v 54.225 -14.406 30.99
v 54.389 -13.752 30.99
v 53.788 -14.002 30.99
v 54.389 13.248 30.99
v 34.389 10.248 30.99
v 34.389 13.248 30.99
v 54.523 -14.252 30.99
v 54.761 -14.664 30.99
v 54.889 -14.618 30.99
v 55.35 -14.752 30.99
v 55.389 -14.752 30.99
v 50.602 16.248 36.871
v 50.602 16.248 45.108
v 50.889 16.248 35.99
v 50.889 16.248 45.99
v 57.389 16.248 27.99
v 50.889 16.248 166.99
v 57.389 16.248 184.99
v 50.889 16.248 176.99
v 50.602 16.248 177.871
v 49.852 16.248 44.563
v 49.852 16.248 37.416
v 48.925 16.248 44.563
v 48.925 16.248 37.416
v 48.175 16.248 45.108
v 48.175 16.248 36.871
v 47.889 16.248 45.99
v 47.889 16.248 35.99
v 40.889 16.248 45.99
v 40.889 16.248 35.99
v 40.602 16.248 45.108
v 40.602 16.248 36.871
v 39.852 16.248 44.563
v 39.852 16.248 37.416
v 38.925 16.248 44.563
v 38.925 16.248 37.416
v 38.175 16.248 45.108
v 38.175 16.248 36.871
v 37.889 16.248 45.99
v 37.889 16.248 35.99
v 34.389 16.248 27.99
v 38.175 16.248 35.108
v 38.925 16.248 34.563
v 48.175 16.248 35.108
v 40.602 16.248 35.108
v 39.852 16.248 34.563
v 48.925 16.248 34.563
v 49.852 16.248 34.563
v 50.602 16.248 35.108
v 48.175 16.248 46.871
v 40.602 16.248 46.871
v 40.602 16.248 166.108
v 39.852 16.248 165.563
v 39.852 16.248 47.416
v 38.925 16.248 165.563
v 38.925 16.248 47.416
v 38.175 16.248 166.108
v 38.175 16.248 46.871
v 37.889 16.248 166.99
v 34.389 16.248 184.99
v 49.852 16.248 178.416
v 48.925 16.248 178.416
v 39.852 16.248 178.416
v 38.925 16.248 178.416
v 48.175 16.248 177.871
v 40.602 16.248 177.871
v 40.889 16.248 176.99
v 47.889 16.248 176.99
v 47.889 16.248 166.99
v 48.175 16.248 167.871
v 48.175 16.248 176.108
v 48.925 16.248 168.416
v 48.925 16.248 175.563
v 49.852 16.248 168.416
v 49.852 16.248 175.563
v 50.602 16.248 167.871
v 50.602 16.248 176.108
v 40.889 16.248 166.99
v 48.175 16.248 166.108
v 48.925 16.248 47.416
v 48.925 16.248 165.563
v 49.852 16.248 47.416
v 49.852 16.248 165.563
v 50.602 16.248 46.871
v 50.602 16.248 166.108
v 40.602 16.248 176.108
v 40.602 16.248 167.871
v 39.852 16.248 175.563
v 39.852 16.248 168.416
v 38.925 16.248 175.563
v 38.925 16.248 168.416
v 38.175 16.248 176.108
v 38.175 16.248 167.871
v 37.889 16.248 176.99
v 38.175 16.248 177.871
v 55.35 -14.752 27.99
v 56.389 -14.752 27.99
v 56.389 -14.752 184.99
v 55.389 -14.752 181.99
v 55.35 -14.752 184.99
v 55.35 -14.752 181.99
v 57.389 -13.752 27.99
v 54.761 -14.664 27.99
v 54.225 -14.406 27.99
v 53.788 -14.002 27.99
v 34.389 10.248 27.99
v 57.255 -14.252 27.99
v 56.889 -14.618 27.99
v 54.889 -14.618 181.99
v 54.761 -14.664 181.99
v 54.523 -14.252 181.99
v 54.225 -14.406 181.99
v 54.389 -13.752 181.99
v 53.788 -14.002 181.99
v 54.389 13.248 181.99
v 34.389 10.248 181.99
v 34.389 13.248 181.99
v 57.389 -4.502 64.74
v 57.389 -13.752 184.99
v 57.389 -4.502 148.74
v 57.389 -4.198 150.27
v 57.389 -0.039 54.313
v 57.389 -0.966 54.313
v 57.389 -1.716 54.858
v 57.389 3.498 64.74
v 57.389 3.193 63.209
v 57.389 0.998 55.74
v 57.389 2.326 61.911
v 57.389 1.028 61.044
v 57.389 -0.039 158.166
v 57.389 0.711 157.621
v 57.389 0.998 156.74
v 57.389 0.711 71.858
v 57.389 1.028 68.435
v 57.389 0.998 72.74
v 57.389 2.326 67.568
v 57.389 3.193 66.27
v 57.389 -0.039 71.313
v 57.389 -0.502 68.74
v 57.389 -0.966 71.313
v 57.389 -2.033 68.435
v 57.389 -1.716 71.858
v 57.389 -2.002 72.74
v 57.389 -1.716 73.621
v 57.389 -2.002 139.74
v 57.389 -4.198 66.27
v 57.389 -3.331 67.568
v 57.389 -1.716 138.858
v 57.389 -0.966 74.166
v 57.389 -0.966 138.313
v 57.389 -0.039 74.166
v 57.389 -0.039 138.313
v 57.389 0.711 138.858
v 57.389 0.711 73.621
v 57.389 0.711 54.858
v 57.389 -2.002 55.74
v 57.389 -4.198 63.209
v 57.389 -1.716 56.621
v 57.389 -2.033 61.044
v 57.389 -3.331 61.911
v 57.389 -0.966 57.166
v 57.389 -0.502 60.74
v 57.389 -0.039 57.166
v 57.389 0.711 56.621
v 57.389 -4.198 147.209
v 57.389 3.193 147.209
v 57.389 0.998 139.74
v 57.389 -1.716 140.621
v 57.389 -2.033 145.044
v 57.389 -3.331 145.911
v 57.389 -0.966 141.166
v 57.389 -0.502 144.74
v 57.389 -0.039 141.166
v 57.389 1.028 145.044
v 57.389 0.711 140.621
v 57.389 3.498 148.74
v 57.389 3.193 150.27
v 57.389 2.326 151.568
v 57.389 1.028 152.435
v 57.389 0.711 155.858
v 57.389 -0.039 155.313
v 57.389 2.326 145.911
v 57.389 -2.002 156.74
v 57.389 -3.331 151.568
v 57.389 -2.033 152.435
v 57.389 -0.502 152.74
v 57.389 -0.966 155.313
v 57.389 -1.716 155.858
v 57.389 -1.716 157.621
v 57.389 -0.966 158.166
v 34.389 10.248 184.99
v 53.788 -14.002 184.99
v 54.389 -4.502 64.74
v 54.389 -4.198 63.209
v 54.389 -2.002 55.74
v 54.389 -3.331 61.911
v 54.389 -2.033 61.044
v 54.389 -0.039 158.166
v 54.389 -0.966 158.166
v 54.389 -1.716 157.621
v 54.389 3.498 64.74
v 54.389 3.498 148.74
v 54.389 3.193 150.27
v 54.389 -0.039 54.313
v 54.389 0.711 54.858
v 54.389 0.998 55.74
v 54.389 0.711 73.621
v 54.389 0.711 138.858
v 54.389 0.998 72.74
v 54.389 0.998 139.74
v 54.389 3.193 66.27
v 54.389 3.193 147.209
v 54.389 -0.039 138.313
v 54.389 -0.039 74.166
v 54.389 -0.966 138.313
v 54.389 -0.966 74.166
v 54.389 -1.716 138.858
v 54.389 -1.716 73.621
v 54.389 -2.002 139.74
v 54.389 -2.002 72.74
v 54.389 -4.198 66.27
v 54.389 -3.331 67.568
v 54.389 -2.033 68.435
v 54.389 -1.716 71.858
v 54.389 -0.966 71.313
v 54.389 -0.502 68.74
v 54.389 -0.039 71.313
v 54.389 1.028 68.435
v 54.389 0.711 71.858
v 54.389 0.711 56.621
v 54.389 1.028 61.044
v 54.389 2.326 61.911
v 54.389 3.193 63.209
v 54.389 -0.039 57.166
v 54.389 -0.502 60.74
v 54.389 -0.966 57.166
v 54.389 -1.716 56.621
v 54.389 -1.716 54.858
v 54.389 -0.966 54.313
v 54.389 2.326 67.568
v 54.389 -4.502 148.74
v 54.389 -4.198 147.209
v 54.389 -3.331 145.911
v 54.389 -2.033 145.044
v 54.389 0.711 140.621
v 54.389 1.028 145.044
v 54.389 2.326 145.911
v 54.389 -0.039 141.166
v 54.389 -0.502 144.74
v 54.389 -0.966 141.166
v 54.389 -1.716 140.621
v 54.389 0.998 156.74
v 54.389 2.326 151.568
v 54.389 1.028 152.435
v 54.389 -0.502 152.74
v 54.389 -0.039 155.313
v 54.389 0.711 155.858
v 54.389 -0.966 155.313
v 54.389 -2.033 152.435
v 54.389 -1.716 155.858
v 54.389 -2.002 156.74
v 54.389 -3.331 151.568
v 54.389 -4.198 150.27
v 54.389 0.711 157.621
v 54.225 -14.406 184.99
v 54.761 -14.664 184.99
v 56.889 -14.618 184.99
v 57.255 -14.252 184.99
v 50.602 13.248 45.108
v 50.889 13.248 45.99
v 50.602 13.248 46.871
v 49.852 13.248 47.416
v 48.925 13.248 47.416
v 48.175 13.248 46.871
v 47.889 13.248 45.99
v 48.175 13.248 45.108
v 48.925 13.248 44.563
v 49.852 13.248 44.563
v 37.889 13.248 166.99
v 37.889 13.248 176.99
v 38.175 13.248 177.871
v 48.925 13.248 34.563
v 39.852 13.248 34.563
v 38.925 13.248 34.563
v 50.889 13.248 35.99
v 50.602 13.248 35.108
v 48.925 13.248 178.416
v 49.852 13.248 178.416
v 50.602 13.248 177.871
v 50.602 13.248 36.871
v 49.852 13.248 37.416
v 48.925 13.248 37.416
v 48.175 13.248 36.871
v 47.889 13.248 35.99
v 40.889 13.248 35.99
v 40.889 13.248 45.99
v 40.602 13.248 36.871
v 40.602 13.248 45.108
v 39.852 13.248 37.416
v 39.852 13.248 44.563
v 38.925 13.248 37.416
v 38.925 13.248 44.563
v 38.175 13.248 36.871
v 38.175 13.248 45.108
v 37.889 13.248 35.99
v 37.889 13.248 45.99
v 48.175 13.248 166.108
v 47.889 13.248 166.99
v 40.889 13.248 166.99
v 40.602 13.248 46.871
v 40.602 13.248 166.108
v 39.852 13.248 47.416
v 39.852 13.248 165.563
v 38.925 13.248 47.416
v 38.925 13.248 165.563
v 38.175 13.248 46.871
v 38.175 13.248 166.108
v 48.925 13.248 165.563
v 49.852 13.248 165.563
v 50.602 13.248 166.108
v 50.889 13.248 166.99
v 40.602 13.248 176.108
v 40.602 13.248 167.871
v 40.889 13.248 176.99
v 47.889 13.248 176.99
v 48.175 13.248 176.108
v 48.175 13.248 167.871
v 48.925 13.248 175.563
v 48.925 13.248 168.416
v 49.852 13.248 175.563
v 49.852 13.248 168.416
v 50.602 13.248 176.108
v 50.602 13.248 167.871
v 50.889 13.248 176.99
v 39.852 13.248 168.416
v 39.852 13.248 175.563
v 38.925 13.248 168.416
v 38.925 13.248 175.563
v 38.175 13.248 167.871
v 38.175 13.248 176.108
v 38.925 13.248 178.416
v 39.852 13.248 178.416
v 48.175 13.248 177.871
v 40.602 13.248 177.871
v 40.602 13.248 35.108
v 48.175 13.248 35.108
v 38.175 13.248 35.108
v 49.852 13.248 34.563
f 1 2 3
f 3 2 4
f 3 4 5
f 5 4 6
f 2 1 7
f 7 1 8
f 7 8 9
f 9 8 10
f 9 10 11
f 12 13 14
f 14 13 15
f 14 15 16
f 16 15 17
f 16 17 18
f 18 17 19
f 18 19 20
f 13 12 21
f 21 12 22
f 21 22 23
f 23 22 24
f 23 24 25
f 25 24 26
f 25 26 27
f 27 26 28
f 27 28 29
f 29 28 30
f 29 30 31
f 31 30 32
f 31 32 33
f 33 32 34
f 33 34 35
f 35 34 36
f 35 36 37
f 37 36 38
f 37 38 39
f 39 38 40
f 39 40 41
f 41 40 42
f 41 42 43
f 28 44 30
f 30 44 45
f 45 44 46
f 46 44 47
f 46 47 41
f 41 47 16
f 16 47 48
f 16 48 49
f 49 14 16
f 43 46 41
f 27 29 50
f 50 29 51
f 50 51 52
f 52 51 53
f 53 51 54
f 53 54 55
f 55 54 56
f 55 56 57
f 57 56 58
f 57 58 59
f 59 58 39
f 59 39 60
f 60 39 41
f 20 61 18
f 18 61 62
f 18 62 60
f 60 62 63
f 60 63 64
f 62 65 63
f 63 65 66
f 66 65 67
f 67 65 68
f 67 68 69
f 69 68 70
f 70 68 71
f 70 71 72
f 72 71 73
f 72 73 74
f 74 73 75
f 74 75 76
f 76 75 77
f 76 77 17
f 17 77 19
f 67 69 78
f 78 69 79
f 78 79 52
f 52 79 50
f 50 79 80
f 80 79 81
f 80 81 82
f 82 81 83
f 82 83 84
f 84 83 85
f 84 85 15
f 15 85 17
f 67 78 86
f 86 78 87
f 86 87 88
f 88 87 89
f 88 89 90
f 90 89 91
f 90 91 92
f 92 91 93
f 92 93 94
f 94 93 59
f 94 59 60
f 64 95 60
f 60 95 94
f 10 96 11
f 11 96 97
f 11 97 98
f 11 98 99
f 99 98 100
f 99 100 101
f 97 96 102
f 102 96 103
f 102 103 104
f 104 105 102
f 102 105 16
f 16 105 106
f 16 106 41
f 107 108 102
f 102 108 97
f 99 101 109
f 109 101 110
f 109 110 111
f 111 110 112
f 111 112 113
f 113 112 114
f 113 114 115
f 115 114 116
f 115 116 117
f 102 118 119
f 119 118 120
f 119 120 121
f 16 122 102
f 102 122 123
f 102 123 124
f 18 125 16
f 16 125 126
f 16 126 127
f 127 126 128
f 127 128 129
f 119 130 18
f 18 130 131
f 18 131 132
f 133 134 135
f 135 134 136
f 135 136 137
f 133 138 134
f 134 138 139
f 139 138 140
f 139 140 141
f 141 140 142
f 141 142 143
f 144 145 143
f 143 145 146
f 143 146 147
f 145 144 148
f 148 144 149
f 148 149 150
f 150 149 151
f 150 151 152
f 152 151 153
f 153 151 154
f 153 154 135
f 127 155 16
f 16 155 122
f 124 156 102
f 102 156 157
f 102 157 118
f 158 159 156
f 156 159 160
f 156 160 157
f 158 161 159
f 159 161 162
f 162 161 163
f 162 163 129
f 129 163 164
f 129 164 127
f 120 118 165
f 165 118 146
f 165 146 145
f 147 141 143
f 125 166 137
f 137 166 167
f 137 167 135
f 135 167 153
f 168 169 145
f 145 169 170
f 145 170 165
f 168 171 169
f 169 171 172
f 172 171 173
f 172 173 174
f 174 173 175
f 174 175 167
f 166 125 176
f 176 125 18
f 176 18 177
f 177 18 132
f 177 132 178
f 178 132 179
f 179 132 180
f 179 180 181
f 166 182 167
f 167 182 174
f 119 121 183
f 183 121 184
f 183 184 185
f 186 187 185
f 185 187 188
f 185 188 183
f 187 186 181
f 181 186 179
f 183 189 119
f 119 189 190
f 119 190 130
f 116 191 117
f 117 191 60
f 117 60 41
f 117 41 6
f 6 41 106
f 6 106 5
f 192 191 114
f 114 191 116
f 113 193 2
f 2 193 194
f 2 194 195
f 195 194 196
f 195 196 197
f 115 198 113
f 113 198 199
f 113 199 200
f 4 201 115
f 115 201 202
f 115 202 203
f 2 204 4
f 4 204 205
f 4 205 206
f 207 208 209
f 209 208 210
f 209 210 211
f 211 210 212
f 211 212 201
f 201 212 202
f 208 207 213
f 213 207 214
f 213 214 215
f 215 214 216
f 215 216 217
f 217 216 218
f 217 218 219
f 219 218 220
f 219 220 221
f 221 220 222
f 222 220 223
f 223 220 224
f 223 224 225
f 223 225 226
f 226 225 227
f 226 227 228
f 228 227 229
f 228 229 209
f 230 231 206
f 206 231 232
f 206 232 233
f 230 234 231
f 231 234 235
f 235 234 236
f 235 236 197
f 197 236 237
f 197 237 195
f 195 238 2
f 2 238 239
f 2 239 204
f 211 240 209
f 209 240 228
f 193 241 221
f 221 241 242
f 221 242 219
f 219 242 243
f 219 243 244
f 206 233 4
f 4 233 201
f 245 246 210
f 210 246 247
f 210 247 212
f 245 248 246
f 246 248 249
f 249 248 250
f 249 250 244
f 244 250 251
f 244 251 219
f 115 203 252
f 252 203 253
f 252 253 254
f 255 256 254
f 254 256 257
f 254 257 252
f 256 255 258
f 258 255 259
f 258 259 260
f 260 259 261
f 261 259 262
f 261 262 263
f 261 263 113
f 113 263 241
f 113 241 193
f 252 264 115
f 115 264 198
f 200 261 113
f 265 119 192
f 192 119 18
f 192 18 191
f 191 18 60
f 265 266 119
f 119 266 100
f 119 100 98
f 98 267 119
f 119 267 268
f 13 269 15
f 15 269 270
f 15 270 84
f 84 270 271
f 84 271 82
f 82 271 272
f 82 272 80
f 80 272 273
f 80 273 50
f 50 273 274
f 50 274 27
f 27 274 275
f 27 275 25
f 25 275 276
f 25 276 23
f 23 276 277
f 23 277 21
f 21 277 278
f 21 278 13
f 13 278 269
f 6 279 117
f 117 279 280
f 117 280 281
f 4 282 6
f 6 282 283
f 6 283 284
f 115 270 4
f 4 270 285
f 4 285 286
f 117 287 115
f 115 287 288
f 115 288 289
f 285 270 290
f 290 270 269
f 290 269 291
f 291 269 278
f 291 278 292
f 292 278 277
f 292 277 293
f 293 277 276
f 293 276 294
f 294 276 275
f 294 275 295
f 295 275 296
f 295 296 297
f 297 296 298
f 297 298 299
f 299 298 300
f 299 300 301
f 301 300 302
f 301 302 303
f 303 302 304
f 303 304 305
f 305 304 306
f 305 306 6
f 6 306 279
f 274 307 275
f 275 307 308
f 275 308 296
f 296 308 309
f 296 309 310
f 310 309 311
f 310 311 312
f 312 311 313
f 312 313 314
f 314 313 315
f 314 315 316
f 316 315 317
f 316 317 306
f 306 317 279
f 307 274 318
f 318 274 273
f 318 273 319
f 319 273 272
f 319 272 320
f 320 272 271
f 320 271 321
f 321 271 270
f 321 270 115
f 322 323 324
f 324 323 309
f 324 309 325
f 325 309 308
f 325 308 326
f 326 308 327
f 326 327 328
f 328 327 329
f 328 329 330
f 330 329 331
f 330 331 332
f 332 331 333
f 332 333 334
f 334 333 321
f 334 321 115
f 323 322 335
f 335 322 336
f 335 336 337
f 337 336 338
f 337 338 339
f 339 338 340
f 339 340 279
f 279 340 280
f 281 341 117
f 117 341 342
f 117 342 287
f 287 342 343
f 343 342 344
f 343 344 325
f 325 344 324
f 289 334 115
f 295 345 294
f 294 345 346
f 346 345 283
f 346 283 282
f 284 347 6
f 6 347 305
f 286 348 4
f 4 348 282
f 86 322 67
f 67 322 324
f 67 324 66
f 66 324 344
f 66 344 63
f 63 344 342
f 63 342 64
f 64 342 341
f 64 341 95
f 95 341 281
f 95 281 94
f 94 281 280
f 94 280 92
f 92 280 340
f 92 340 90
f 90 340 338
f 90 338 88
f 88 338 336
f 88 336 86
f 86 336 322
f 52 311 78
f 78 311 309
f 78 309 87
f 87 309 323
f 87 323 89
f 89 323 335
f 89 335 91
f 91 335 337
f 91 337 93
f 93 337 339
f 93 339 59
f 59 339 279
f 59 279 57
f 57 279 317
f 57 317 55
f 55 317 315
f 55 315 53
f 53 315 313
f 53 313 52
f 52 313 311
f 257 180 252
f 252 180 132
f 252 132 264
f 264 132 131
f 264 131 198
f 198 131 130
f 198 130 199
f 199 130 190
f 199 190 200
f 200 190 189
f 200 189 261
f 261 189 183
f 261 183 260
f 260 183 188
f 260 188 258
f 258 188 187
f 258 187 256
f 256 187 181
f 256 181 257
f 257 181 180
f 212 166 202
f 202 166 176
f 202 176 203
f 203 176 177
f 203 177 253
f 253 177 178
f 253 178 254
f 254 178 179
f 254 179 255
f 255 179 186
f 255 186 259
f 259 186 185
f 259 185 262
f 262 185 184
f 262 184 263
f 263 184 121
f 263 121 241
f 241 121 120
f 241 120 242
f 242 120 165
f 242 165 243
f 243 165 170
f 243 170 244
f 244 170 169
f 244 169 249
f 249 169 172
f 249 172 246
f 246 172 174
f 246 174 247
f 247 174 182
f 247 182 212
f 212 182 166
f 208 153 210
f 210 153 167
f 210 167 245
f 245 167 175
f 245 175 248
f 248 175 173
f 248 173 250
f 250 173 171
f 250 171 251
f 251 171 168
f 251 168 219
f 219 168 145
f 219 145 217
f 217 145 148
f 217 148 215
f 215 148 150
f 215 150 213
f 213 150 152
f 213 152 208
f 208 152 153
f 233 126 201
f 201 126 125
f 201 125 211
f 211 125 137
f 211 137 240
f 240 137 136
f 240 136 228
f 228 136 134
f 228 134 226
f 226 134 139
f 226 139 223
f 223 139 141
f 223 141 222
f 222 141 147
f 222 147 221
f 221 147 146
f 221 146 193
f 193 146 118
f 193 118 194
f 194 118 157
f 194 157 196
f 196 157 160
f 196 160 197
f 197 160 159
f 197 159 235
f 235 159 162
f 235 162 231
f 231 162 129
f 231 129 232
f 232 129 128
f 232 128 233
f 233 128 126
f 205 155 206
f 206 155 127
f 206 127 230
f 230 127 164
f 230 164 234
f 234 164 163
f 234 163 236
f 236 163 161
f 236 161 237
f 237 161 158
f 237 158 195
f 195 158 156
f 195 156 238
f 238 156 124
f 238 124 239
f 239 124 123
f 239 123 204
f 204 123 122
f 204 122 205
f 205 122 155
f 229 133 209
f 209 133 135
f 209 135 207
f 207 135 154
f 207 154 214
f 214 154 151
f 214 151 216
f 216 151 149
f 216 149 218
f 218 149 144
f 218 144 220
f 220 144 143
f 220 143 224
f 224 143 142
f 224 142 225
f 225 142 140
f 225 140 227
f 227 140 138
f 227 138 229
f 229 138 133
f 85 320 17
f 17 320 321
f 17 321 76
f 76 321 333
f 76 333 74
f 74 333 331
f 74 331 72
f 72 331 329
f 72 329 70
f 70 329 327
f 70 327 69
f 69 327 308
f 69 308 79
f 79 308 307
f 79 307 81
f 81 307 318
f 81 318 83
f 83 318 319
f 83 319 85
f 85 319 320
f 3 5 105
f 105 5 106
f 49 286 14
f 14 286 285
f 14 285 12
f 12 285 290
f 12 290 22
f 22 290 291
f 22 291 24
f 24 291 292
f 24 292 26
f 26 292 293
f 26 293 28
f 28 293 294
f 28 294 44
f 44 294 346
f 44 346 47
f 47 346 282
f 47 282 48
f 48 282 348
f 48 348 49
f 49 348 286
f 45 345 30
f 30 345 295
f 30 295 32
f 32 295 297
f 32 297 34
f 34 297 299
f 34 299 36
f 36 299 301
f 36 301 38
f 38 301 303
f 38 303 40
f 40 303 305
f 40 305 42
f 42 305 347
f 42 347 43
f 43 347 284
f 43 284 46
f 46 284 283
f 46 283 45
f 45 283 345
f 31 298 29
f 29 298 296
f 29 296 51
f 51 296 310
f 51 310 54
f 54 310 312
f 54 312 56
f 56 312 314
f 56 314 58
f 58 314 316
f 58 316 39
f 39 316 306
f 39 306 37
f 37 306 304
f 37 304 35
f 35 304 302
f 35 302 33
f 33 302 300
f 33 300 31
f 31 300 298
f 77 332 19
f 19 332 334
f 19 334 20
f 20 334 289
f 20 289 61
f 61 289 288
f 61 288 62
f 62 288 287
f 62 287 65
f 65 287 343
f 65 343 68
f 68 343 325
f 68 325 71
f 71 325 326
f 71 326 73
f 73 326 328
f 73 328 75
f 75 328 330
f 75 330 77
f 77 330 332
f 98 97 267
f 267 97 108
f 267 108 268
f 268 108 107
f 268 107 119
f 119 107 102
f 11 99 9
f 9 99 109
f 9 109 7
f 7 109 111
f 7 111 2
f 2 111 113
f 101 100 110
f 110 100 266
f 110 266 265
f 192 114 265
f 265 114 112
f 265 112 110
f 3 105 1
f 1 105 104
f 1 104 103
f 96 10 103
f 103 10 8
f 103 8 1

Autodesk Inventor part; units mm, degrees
ref_plane "YZ Plane" through (0, 0, 0) normal (1, 0, 0) x (0, 1, 0)
ref_plane "XZ Plane" through (0, 0, 0) normal (0, 1, 0) x (-1, 0, 0)
ref_plane "XY Plane" through (0, 0, 0) normal (0, 0, 1) x (1, 0, 0)
ref_plane "РабПлоскость1" through (57.3886, 15.9976, 24.7396) normal (1, 0, 0) x (0, 1, 0)
sketch "Эскиз1" plane through (57.3886, 15.9976, 24.7396) normal (1, 0, 0) x (0, 1, 0)
  circle A0 centre (-16.5, 48) radius 1.5
  circle A1 centre (-16.5, 31) radius 1.5
  circle A2 centre (-16.5, 40) radius 4
  circle A3 centre (-16.5, 40) radius 12.75
  circle A4 centre (-16.5, 132) radius 1.5
  circle A5 centre (-16.5, 115) radius 1.5
  circle A6 centre (-16.5, 124) radius 4
  circle A7 centre (-16.5, 124) radius 12.75
  line L0 (-3.75, 40) -> (-2.75, 40)
  line L1 (-30.75, 6.25) -> (-30.75, 157.25)
  line L2 (-30.75, 157.25) -> (-2.75, 157.25)
  line L3 (-30.75, 6.25) -> (0.25, 6.25)
  line L4 (0.25, 6.25) -> (0.25, 157.25)
  line L5 (0.25, 157.25) -> (-30.75, 157.25)
  line L6 (-30.75, 157.25) -> (-30.75, 6.25)
  point P0 (-15.9976, -24.7396)
  point P1 (-15.5, 28.25)
  point P2 (-2.75, 157.25)
  dimension "d15" = 25.5
  dimension "d43" = 25.5
  dimension "d44" = 1
  dimension "d45" = 28
  dimension "d46" = 151
  dimension "d79" = 31
ref_plane "РабПлоскость2" through (57.3886, 13.2476, 181.9896) normal (0, 1, 0) x (1, 0, 0)
sketch "Эскиз5" plane through (57.3886, 13.2476, 181.9896) normal (0, 1, 0) x (1, 0, 0)
  line L0 (-3, 0) -> (-23, 0)
  line L1 (-23, 0) -> (-23, 20)
  line L2 (-3, 20) -> (-3, 0)
  line L3 (-3, 151) -> (-3, 0) projected
  line L4 (-23, 0) -> (-3, 0)
  line L5 (-3, 0) -> (-3, 5)
  line L6 (-23, 5) -> (-23, 0)
  line L7 (-23, 0) -> (-18, 0)
  line L8 (-23, 20) -> (-23, 0)
  line L9 (-3, 20) -> (-3, 15)
  line L10 (-23, 15) -> (-23, 20)
  line L11 (-8, 0) -> (-3, 0)
  line L12 (-3, 0) -> (-3, 20)
  circle A0 centre (-18, 5) radius 1.5
  circle A1 centre (-18, 15) radius 1.5
  circle A2 centre (-8, 15) radius 1.5
  circle A3 centre (-8, 5) radius 1.5
  line L13 (-3, 151) -> (-23, 151)
  line L14 (-23, 151) -> (-23, 131)
  line L15 (-3, 131) -> (-3, 151)
  line L16 (-3, 151) -> (-23, 151)
  line L17 (-23, 151) -> (-23, 146)
  line L18 (-3, 146) -> (-3, 151)
  line L19 (-23, 151) -> (-18, 151)
  line L20 (-23, 131) -> (-23, 151)
  line L21 (-3, 131) -> (-3, 136)
  line L22 (-23, 136) -> (-23, 131)
  line L23 (-8, 151) -> (-3, 151)
  line L24 (-3, 151) -> (-3, 131)
  circle A4 centre (-18, 136) radius 1.5
  circle A5 centre (-18, 146) radius 1.5
  circle A6 centre (-8, 146) radius 1.5
  circle A7 centre (-8, 136) radius 1.5
  line L25 (-23, 20) -> (-23, 131)
  line L26 (-3, 20) -> (-3, 131)
  point P0 (-57.3886, 181.9896)
  point P1 (-23, 131)
ref_plane "РабПлоскость3" through (57.3886, -14.7524, 181.9896) normal (0, 0, 1) x (1, 0, 0)
sketch "Эскиз6" plane through (57.3886, -14.7524, 181.9896) normal (0, 0, 1) x (1, 0, 0)
  line L0 (-3, 28) -> (-23, 28) projected
  line L1 (-3, 25) -> (-23, 25) projected
  line L2 (-23, 28) -> (-23, 25)
  line L3 (0, 0) -> (-3, 0) projected
  line L4 (-23, 25) -> (-3, 0)
  line L5 (-3, 0) -> (0, 0)
  line L6 (0, 28) -> (0, 0) projected
  line L7 (0, 0) -> (0, 28)
  line L8 (0, 28) -> (-23, 28)
  point P0 (-57.3886, 14.7524)
ref_plane "РабПлоскость4" through (57.3886, -14.7524, 30.9896) normal (0, 0, -1) x (-1, 0, 0)
sketch "Эскиз7" plane through (57.3886, -14.7524, 30.9896) normal (0, 0, -1) x (-1, 0, 0)
  line L0 (0, 28) -> (0, 0) projected
  line L1 (3, 28) -> (23, 28) projected
  line L2 (0, 28) -> (23, 28)
  line L3 (3, 25) -> (23, 25) projected
  line L4 (23, 28) -> (23, 25)
  line L5 (0, 0) -> (3, 0) projected
  line L6 (23, 25) -> (3, 0)
  line L7 (3, 0) -> (0, 0)
  line L8 (0, 0) -> (0, 28)
  point P0 (57.3886, 14.7524)
extrude "Выдавливание8" add sketch "Эскиз7" along normal blind 3
extrude "Выдавливание9" add sketch "Эскиз6" along normal blind 3
extrude "Выдавливание10" add sketch "Эскиз1" against normal blind 3 contours A3 | A7 | L1 L2 L5 L4 L3
extrude "Выдавливание11" add sketch "Эскиз5" along normal blind 3
sketch "Эскиз8" plane through (57.3886, 16.2476, 181.9896) normal (0, 1, 0) x (1, 0, 0)
  line L0 (0, 151) -> (0, 154) projected
  line L1 (-23, 154) -> (0, 154) projected
  line L2 (0, 151) -> (-23, 151)
  line L3 (-23, 151) -> (-23, 154)
  line L4 (-23, 154) -> (0, 154)
  line L5 (0, 154) -> (0, 151)
  line L6 (0, 0) -> (0, -3) projected
  line L7 (0, -3) -> (-23, -3) projected
  line L8 (0, 0) -> (-23, 0)
  line L9 (-23, 0) -> (-23, -3)
  line L10 (-23, -3) -> (0, -3)
  line L11 (0, -3) -> (0, 0)
  point P0 (-57.3886, 181.9896)
extrude "Выдавливание12" add sketch "Эскиз8" against normal blind 3
fillet "Сопряжение7" radius 1 1 edges at (57.3886, -14.7524, 106.4896)
fillet "Сопряжение8" radius 1 1 edges at (54.3886, -14.7524, 106.4896)
fillet "Сопряжение9" radius 2 1 edges at (54.3886, -14.7524, 183.4896)
fillet "Сопряжение10" radius 2 1 edges at (54.3886, -14.7524, 29.4896)
properties part number "крепёж_мотора_f"
